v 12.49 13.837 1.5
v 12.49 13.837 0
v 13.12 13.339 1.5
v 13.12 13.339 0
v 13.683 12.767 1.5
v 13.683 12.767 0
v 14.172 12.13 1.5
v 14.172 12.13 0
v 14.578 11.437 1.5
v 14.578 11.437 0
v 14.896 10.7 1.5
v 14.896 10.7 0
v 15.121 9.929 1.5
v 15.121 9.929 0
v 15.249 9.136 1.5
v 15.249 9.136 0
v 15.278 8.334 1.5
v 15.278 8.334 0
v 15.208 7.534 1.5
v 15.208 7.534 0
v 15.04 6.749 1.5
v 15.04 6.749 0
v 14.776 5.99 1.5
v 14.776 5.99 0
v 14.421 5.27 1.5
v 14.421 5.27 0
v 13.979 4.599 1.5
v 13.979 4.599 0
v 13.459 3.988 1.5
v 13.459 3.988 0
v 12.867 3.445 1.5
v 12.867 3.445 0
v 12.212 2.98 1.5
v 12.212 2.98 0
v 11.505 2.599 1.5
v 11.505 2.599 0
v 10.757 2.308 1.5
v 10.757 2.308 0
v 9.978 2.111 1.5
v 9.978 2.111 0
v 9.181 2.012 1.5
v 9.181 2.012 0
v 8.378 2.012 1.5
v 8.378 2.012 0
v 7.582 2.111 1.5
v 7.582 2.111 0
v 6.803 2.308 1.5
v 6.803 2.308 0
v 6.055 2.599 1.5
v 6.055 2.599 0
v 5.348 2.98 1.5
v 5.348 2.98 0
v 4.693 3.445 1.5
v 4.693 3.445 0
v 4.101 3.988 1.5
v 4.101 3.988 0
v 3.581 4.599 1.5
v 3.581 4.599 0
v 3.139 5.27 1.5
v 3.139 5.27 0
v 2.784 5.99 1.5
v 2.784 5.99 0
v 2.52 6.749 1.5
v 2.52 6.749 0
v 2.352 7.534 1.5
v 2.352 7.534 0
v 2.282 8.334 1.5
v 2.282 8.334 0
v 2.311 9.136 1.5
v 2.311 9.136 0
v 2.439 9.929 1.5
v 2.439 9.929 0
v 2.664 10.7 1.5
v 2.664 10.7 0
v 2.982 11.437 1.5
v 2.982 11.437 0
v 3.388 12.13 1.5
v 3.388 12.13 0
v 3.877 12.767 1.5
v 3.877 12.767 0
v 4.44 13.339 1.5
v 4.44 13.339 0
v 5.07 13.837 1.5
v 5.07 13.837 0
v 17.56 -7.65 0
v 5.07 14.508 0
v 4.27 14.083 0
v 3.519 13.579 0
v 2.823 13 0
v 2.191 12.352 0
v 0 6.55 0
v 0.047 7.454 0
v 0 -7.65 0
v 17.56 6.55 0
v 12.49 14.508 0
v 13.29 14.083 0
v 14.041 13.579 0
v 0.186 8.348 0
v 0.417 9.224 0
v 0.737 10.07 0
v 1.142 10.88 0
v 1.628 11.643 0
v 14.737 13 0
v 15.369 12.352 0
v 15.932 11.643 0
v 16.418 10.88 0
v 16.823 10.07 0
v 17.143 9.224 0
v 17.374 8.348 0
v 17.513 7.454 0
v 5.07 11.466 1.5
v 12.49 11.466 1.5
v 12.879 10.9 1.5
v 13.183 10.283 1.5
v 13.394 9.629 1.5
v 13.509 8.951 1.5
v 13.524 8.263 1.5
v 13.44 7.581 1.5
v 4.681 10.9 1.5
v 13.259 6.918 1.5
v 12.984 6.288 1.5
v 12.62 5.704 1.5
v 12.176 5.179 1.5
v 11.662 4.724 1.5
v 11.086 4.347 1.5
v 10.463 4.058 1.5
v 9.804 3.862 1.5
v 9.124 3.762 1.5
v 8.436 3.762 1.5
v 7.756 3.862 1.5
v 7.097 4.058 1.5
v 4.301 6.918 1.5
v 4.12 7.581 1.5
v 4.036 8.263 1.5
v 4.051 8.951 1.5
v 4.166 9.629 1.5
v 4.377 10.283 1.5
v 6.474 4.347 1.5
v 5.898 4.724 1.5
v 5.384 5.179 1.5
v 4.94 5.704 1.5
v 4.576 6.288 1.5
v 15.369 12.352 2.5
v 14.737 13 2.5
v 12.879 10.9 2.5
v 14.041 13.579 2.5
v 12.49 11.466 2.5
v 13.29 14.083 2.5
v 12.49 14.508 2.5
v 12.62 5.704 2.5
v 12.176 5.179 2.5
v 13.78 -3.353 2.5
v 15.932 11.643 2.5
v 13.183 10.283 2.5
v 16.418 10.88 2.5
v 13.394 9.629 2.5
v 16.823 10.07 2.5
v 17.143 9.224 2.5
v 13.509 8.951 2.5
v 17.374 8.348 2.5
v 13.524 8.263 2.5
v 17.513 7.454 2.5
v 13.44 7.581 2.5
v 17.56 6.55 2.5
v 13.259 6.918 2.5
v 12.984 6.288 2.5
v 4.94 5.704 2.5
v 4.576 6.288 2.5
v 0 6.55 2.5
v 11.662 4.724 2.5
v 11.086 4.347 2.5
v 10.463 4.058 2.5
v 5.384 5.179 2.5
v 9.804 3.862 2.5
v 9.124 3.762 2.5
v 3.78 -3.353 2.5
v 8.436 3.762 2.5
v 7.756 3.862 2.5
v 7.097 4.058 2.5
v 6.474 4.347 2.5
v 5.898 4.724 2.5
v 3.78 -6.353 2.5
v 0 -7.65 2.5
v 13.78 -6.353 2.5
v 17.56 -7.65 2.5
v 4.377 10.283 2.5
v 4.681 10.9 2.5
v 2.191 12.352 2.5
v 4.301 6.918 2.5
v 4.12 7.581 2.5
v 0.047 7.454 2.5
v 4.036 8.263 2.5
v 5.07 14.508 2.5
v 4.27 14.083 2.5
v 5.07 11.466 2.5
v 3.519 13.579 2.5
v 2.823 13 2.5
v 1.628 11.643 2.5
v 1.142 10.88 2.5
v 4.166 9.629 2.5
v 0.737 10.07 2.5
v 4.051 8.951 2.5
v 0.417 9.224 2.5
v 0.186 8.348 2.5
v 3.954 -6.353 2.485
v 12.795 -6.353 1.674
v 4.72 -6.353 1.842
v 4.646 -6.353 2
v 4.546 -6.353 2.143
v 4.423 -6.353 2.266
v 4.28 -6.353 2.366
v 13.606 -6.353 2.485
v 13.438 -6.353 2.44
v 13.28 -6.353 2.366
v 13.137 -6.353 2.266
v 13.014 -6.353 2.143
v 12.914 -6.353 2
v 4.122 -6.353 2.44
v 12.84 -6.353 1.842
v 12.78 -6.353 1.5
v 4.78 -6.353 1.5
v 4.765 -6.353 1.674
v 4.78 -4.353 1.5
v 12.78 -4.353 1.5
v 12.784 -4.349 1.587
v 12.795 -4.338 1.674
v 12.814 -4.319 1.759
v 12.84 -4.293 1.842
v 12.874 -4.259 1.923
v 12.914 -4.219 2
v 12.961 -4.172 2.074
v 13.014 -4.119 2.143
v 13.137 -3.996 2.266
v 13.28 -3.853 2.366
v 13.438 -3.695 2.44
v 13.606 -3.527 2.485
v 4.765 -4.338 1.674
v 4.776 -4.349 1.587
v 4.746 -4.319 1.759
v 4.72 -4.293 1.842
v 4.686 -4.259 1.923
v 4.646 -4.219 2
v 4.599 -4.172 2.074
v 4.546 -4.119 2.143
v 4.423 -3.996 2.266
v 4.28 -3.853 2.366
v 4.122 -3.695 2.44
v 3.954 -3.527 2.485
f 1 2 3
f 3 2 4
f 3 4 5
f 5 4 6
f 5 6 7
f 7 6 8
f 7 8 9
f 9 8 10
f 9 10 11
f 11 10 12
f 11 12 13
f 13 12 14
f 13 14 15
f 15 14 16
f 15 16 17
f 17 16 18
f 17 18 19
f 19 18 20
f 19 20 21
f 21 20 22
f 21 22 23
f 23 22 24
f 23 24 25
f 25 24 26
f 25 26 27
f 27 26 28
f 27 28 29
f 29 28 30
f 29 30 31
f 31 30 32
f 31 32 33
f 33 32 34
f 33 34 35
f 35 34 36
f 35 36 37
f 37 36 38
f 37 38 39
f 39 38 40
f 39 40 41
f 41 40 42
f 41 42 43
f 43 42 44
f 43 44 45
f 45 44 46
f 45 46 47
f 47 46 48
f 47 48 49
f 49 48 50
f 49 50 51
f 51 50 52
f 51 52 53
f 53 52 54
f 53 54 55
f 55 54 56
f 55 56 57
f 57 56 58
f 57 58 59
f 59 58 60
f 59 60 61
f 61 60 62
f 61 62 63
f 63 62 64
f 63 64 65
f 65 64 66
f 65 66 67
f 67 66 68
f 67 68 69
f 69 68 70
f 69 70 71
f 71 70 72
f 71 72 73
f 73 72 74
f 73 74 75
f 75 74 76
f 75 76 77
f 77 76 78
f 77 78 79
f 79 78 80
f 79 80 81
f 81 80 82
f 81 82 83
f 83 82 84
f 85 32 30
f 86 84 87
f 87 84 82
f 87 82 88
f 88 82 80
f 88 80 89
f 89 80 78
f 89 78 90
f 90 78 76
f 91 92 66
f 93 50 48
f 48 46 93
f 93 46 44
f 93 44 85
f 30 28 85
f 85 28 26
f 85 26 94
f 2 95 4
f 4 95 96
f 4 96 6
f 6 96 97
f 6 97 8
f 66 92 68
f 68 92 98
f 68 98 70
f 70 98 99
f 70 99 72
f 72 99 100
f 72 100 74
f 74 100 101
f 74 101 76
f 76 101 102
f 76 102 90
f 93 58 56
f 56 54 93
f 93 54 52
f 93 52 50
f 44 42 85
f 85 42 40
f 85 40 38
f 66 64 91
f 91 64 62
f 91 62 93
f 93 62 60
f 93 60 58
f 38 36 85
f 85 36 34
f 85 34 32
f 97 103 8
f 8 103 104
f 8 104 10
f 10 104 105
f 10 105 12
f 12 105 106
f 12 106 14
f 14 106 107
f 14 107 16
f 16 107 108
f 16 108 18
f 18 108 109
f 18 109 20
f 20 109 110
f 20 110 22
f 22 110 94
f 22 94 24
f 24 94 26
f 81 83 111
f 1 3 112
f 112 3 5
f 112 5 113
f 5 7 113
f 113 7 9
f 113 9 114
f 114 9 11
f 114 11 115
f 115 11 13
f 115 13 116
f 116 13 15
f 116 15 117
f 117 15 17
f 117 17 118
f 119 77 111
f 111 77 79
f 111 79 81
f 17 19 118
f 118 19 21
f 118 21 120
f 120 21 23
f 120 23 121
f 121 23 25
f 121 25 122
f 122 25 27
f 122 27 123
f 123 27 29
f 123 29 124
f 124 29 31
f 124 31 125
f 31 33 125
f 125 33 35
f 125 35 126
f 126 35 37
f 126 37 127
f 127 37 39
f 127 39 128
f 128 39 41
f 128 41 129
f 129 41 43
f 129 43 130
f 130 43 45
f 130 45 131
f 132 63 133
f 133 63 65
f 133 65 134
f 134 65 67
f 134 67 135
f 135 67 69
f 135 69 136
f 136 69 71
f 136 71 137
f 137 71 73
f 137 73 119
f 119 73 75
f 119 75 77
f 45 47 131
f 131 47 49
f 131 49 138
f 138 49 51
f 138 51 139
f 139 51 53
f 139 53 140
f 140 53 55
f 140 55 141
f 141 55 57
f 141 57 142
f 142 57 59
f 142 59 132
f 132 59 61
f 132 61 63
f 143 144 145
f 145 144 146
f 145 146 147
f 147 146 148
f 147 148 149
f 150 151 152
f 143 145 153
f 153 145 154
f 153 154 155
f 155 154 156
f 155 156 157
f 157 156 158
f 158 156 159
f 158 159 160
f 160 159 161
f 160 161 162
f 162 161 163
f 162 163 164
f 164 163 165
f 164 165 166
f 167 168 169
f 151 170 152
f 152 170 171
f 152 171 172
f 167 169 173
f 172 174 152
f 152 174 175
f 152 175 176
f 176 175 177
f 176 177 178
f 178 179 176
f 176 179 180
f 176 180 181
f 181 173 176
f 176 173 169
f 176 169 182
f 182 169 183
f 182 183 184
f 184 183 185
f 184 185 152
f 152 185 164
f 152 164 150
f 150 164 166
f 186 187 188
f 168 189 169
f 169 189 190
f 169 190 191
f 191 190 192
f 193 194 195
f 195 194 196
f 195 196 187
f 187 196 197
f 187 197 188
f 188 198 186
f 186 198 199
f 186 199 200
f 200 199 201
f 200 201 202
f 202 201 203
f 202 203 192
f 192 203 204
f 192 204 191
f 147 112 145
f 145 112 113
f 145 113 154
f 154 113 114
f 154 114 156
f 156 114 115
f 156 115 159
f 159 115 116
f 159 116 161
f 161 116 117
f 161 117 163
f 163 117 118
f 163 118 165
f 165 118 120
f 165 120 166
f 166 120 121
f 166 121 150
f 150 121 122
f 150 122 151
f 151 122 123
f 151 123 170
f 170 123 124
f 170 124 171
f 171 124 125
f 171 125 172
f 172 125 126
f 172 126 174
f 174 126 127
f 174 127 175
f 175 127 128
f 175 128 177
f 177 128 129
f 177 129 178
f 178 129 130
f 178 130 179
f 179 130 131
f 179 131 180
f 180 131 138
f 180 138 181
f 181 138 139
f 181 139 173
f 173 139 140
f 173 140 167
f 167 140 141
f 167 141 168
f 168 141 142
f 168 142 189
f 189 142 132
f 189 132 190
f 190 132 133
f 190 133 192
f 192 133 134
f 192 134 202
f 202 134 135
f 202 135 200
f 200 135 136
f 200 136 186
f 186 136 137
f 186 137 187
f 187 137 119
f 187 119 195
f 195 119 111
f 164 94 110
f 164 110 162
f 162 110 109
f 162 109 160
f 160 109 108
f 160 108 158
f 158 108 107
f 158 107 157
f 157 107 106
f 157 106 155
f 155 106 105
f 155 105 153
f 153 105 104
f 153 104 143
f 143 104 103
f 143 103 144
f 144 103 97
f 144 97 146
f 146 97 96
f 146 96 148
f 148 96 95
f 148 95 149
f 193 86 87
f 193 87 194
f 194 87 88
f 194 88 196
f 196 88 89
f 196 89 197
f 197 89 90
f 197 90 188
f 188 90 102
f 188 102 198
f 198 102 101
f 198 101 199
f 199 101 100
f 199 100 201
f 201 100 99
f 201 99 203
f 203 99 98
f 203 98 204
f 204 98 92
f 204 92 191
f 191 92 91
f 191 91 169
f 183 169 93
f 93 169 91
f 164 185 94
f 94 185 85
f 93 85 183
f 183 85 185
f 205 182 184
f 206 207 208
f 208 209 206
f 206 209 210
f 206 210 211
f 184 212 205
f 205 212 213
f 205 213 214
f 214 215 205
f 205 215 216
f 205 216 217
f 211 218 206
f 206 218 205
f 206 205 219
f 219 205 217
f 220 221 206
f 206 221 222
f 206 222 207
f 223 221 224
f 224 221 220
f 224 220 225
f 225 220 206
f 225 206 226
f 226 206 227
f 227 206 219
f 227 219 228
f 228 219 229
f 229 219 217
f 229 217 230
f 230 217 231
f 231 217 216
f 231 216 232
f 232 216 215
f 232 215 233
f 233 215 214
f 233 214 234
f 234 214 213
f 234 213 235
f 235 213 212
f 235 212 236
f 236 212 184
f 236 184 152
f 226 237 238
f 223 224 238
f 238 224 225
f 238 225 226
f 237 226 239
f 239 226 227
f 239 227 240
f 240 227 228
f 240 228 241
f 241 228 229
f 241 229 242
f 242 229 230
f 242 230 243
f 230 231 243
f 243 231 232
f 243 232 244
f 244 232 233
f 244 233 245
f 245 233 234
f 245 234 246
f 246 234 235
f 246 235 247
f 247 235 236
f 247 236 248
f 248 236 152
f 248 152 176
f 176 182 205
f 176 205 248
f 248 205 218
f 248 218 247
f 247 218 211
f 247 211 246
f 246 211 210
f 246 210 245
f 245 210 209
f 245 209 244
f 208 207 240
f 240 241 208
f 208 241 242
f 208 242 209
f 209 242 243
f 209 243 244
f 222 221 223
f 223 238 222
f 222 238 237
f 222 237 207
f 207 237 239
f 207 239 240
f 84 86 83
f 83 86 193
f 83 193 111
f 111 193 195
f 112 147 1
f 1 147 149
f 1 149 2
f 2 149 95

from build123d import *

# Parameters (mm, degrees)
BOSS_EXTRUDE1_DEPTH = 1.5
BOSS_EXTRUDE2_DEPTH = 1
SKETCH4_R           = 4.75
CUT_EXTRUDE1_DEPTH  = 23.898325822
SKETCH5_W           = 17.56
SKETCH5_H           = 2.5
BOSS_EXTRUDE3_DEPTH = 0.15
SKETCH6_W           = 17.56
SKETCH6_H           = 2.5
BOSS_EXTRUDE4_DEPTH = 7.5
SKETCH9_W           = 8
SKETCH9_H           = 2
CUT_EXTRUDE2_DEPTH  = 1
FILLET1_R           = 1
CUT_EXTRUDE3_REACH  = 30.47
SKETCH10_W          = 6.92
SKETCH10_H          = 1
SKETCH11_W          = 2.5
SKETCH11_H          = 3.588872583
CUT_EXTRUDE4_DEPTH  = 0.25


with BuildPart() as part:
    # Sketch1 → Boss-Extrude1 (new body)
    with BuildSketch(Plane.XY):
        with BuildLine():
            ThreePointArc((14.980604809, 6.55), (8.78, 2), (2.579395191, 6.55))
            Line((2.579395191, 6.55), (0, 6.55))
            Line((0, 6.55), (0, 0))
            Line((0, 0), (17.56, 0))
            Line((17.56, 0), (17.56, 6.55))
            Line((17.56, 6.55), (14.980604809, 6.55))
        make_face()
        with BuildLine():
            ThreePointArc((2.579395191, 6.55), (2.679421093, 10.743420825), (5.32, 14.002581212))
            Line((5.32, 14.002581212), (5.32, 14.619498126))
            ThreePointArc((5.32, 14.619498126), (1.449679407, 11.382680416), (0, 6.55))
            Line((0, 6.55), (2.579395191, 6.55))
        make_face()
        with BuildLine():
            ThreePointArc((12.24, 14.002581212), (14.880578907, 10.743420825), (14.980604809, 6.55))
            Line((14.980604809, 6.55), (17.56, 6.55))
            ThreePointArc((17.56, 6.55), (16.110320593, 11.382680416), (12.24, 14.619498126))
            Line((12.24, 14.619498126), (12.24, 14.002581212))
        make_face()
    extrude(amount=BOSS_EXTRUDE1_DEPTH)

    # Sketch3 → Boss-Extrude2 (add)
    with BuildSketch(Plane.XY.offset(1.5)):
        with BuildLine():
            Line((12.24, 14.619498126), (12.24, 14.002581212))
            ThreePointArc((12.24, 14.002581212), (8.78, 2), (5.32, 14.002581212))
            Line((5.32, 14.002581212), (5.32, 14.619498126))
            ThreePointArc((5.32, 14.619498126), (1.449679407, 11.382680416), (0, 6.55))
            Line((0, 6.55), (0, 0))
            Line((0, 0), (17.56, 0))
            Line((17.56, 0), (17.56, 6.55))
            ThreePointArc((17.56, 6.55), (16.110320593, 11.382680416), (12.24, 14.619498126))
        make_face()
        with BuildLine():
            Line((5.32, 14.619498126), (12.24, 14.619498126))
            Line((12.24, 14.619498126), (12.24, 14.002581212))
            ThreePointArc((12.24, 14.002581212), (8.78, 2), (5.32, 14.002581212))
            Line((5.32, 14.002581212), (5.32, 14.619498126))
        make_face()
    extrude(amount=BOSS_EXTRUDE2_DEPTH)

    # Sketch4 → Cut-Extrude1 (cut, through all)
    with BuildSketch(Plane(origin=(0, 0, 1.5), x_dir=(-1, 0, 0), z_dir=(0, 0, -1))):
        with Locations((-8.78, 8.5)):
            Circle(SKETCH4_R)
    extrude(amount=-CUT_EXTRUDE1_DEPTH, mode=Mode.SUBTRACT)

    # Sketch5 → Boss-Extrude3 (add)
    with BuildSketch(Plane.XZ):
        with Locations((8.78, 1.25)):
            Rectangle(SKETCH5_W, SKETCH5_H)
    extrude(amount=BOSS_EXTRUDE3_DEPTH)

    # Sketch6 → Boss-Extrude4 (add)
    with BuildSketch(Plane.XZ.offset(0.15)):
        with Locations((8.78, 1.25)):
            Rectangle(SKETCH6_W, SKETCH6_H)
    extrude(amount=BOSS_EXTRUDE4_DEPTH)

    # Sketch9 → Cut-Extrude2 (cut)
    with BuildSketch(Plane.XY.offset(2.5)):
        with Locations((8.78, -5.353166831)):
            Rectangle(SKETCH9_W, SKETCH9_H)
    extrude(amount=-CUT_EXTRUDE2_DEPTH, mode=Mode.SUBTRACT)

    # Fillet1
    fillet1_edges = [part.edges().sort_by_distance(p)[0] for p in [
        (4.78, -5.353166831, 2.5),
        (12.78, -5.353166831, 2.5),
        (8.78, -4.353166831, 2.5),
    ]]
    fillet(fillet1_edges, radius=FILLET1_R - 0.0001)  # a hair under: the kernel refuses the full size

    # Sketch10 → Cut-Extrude3 (cut, up to next)
    with BuildSketch(Plane(origin=(0, 14.619498126, 0), x_dir=(1, 0, 0), z_dir=(0, 1, 0)), mode=Mode.PRIVATE) as cut_extrude3_sk1:
        with Locations((8.78, -2)):
            Rectangle(SKETCH10_W, SKETCH10_H)
    cut_extrude3_tool1 = extrude(cut_extrude3_sk1.sketch, amount=-CUT_EXTRUDE3_REACH, mode=Mode.PRIVATE) & part.part
    add(cut_extrude3_tool1.solids().sort_by_distance((8.78, 14.619498, 2))[0], mode=Mode.SUBTRACT)

    # Sketch11 → Cut-Extrude4 (cut)
    with BuildSketch(Plane(origin=(5.32, 0, 0), x_dir=(0, 0, -1), z_dir=(1, 0, 0))):
        with Locations((-1.25, 12.825061835)):
            Rectangle(SKETCH11_W, SKETCH11_H)
    cut_extrude4 = extrude(amount=-CUT_EXTRUDE4_DEPTH, mode=Mode.SUBTRACT)

    # Mirror1: Cut-Extrude4 across plane
    add(cut_extrude4.mirror(Plane.ZY.offset(-8.78)), mode=Mode.SUBTRACT)


solid = part.part
